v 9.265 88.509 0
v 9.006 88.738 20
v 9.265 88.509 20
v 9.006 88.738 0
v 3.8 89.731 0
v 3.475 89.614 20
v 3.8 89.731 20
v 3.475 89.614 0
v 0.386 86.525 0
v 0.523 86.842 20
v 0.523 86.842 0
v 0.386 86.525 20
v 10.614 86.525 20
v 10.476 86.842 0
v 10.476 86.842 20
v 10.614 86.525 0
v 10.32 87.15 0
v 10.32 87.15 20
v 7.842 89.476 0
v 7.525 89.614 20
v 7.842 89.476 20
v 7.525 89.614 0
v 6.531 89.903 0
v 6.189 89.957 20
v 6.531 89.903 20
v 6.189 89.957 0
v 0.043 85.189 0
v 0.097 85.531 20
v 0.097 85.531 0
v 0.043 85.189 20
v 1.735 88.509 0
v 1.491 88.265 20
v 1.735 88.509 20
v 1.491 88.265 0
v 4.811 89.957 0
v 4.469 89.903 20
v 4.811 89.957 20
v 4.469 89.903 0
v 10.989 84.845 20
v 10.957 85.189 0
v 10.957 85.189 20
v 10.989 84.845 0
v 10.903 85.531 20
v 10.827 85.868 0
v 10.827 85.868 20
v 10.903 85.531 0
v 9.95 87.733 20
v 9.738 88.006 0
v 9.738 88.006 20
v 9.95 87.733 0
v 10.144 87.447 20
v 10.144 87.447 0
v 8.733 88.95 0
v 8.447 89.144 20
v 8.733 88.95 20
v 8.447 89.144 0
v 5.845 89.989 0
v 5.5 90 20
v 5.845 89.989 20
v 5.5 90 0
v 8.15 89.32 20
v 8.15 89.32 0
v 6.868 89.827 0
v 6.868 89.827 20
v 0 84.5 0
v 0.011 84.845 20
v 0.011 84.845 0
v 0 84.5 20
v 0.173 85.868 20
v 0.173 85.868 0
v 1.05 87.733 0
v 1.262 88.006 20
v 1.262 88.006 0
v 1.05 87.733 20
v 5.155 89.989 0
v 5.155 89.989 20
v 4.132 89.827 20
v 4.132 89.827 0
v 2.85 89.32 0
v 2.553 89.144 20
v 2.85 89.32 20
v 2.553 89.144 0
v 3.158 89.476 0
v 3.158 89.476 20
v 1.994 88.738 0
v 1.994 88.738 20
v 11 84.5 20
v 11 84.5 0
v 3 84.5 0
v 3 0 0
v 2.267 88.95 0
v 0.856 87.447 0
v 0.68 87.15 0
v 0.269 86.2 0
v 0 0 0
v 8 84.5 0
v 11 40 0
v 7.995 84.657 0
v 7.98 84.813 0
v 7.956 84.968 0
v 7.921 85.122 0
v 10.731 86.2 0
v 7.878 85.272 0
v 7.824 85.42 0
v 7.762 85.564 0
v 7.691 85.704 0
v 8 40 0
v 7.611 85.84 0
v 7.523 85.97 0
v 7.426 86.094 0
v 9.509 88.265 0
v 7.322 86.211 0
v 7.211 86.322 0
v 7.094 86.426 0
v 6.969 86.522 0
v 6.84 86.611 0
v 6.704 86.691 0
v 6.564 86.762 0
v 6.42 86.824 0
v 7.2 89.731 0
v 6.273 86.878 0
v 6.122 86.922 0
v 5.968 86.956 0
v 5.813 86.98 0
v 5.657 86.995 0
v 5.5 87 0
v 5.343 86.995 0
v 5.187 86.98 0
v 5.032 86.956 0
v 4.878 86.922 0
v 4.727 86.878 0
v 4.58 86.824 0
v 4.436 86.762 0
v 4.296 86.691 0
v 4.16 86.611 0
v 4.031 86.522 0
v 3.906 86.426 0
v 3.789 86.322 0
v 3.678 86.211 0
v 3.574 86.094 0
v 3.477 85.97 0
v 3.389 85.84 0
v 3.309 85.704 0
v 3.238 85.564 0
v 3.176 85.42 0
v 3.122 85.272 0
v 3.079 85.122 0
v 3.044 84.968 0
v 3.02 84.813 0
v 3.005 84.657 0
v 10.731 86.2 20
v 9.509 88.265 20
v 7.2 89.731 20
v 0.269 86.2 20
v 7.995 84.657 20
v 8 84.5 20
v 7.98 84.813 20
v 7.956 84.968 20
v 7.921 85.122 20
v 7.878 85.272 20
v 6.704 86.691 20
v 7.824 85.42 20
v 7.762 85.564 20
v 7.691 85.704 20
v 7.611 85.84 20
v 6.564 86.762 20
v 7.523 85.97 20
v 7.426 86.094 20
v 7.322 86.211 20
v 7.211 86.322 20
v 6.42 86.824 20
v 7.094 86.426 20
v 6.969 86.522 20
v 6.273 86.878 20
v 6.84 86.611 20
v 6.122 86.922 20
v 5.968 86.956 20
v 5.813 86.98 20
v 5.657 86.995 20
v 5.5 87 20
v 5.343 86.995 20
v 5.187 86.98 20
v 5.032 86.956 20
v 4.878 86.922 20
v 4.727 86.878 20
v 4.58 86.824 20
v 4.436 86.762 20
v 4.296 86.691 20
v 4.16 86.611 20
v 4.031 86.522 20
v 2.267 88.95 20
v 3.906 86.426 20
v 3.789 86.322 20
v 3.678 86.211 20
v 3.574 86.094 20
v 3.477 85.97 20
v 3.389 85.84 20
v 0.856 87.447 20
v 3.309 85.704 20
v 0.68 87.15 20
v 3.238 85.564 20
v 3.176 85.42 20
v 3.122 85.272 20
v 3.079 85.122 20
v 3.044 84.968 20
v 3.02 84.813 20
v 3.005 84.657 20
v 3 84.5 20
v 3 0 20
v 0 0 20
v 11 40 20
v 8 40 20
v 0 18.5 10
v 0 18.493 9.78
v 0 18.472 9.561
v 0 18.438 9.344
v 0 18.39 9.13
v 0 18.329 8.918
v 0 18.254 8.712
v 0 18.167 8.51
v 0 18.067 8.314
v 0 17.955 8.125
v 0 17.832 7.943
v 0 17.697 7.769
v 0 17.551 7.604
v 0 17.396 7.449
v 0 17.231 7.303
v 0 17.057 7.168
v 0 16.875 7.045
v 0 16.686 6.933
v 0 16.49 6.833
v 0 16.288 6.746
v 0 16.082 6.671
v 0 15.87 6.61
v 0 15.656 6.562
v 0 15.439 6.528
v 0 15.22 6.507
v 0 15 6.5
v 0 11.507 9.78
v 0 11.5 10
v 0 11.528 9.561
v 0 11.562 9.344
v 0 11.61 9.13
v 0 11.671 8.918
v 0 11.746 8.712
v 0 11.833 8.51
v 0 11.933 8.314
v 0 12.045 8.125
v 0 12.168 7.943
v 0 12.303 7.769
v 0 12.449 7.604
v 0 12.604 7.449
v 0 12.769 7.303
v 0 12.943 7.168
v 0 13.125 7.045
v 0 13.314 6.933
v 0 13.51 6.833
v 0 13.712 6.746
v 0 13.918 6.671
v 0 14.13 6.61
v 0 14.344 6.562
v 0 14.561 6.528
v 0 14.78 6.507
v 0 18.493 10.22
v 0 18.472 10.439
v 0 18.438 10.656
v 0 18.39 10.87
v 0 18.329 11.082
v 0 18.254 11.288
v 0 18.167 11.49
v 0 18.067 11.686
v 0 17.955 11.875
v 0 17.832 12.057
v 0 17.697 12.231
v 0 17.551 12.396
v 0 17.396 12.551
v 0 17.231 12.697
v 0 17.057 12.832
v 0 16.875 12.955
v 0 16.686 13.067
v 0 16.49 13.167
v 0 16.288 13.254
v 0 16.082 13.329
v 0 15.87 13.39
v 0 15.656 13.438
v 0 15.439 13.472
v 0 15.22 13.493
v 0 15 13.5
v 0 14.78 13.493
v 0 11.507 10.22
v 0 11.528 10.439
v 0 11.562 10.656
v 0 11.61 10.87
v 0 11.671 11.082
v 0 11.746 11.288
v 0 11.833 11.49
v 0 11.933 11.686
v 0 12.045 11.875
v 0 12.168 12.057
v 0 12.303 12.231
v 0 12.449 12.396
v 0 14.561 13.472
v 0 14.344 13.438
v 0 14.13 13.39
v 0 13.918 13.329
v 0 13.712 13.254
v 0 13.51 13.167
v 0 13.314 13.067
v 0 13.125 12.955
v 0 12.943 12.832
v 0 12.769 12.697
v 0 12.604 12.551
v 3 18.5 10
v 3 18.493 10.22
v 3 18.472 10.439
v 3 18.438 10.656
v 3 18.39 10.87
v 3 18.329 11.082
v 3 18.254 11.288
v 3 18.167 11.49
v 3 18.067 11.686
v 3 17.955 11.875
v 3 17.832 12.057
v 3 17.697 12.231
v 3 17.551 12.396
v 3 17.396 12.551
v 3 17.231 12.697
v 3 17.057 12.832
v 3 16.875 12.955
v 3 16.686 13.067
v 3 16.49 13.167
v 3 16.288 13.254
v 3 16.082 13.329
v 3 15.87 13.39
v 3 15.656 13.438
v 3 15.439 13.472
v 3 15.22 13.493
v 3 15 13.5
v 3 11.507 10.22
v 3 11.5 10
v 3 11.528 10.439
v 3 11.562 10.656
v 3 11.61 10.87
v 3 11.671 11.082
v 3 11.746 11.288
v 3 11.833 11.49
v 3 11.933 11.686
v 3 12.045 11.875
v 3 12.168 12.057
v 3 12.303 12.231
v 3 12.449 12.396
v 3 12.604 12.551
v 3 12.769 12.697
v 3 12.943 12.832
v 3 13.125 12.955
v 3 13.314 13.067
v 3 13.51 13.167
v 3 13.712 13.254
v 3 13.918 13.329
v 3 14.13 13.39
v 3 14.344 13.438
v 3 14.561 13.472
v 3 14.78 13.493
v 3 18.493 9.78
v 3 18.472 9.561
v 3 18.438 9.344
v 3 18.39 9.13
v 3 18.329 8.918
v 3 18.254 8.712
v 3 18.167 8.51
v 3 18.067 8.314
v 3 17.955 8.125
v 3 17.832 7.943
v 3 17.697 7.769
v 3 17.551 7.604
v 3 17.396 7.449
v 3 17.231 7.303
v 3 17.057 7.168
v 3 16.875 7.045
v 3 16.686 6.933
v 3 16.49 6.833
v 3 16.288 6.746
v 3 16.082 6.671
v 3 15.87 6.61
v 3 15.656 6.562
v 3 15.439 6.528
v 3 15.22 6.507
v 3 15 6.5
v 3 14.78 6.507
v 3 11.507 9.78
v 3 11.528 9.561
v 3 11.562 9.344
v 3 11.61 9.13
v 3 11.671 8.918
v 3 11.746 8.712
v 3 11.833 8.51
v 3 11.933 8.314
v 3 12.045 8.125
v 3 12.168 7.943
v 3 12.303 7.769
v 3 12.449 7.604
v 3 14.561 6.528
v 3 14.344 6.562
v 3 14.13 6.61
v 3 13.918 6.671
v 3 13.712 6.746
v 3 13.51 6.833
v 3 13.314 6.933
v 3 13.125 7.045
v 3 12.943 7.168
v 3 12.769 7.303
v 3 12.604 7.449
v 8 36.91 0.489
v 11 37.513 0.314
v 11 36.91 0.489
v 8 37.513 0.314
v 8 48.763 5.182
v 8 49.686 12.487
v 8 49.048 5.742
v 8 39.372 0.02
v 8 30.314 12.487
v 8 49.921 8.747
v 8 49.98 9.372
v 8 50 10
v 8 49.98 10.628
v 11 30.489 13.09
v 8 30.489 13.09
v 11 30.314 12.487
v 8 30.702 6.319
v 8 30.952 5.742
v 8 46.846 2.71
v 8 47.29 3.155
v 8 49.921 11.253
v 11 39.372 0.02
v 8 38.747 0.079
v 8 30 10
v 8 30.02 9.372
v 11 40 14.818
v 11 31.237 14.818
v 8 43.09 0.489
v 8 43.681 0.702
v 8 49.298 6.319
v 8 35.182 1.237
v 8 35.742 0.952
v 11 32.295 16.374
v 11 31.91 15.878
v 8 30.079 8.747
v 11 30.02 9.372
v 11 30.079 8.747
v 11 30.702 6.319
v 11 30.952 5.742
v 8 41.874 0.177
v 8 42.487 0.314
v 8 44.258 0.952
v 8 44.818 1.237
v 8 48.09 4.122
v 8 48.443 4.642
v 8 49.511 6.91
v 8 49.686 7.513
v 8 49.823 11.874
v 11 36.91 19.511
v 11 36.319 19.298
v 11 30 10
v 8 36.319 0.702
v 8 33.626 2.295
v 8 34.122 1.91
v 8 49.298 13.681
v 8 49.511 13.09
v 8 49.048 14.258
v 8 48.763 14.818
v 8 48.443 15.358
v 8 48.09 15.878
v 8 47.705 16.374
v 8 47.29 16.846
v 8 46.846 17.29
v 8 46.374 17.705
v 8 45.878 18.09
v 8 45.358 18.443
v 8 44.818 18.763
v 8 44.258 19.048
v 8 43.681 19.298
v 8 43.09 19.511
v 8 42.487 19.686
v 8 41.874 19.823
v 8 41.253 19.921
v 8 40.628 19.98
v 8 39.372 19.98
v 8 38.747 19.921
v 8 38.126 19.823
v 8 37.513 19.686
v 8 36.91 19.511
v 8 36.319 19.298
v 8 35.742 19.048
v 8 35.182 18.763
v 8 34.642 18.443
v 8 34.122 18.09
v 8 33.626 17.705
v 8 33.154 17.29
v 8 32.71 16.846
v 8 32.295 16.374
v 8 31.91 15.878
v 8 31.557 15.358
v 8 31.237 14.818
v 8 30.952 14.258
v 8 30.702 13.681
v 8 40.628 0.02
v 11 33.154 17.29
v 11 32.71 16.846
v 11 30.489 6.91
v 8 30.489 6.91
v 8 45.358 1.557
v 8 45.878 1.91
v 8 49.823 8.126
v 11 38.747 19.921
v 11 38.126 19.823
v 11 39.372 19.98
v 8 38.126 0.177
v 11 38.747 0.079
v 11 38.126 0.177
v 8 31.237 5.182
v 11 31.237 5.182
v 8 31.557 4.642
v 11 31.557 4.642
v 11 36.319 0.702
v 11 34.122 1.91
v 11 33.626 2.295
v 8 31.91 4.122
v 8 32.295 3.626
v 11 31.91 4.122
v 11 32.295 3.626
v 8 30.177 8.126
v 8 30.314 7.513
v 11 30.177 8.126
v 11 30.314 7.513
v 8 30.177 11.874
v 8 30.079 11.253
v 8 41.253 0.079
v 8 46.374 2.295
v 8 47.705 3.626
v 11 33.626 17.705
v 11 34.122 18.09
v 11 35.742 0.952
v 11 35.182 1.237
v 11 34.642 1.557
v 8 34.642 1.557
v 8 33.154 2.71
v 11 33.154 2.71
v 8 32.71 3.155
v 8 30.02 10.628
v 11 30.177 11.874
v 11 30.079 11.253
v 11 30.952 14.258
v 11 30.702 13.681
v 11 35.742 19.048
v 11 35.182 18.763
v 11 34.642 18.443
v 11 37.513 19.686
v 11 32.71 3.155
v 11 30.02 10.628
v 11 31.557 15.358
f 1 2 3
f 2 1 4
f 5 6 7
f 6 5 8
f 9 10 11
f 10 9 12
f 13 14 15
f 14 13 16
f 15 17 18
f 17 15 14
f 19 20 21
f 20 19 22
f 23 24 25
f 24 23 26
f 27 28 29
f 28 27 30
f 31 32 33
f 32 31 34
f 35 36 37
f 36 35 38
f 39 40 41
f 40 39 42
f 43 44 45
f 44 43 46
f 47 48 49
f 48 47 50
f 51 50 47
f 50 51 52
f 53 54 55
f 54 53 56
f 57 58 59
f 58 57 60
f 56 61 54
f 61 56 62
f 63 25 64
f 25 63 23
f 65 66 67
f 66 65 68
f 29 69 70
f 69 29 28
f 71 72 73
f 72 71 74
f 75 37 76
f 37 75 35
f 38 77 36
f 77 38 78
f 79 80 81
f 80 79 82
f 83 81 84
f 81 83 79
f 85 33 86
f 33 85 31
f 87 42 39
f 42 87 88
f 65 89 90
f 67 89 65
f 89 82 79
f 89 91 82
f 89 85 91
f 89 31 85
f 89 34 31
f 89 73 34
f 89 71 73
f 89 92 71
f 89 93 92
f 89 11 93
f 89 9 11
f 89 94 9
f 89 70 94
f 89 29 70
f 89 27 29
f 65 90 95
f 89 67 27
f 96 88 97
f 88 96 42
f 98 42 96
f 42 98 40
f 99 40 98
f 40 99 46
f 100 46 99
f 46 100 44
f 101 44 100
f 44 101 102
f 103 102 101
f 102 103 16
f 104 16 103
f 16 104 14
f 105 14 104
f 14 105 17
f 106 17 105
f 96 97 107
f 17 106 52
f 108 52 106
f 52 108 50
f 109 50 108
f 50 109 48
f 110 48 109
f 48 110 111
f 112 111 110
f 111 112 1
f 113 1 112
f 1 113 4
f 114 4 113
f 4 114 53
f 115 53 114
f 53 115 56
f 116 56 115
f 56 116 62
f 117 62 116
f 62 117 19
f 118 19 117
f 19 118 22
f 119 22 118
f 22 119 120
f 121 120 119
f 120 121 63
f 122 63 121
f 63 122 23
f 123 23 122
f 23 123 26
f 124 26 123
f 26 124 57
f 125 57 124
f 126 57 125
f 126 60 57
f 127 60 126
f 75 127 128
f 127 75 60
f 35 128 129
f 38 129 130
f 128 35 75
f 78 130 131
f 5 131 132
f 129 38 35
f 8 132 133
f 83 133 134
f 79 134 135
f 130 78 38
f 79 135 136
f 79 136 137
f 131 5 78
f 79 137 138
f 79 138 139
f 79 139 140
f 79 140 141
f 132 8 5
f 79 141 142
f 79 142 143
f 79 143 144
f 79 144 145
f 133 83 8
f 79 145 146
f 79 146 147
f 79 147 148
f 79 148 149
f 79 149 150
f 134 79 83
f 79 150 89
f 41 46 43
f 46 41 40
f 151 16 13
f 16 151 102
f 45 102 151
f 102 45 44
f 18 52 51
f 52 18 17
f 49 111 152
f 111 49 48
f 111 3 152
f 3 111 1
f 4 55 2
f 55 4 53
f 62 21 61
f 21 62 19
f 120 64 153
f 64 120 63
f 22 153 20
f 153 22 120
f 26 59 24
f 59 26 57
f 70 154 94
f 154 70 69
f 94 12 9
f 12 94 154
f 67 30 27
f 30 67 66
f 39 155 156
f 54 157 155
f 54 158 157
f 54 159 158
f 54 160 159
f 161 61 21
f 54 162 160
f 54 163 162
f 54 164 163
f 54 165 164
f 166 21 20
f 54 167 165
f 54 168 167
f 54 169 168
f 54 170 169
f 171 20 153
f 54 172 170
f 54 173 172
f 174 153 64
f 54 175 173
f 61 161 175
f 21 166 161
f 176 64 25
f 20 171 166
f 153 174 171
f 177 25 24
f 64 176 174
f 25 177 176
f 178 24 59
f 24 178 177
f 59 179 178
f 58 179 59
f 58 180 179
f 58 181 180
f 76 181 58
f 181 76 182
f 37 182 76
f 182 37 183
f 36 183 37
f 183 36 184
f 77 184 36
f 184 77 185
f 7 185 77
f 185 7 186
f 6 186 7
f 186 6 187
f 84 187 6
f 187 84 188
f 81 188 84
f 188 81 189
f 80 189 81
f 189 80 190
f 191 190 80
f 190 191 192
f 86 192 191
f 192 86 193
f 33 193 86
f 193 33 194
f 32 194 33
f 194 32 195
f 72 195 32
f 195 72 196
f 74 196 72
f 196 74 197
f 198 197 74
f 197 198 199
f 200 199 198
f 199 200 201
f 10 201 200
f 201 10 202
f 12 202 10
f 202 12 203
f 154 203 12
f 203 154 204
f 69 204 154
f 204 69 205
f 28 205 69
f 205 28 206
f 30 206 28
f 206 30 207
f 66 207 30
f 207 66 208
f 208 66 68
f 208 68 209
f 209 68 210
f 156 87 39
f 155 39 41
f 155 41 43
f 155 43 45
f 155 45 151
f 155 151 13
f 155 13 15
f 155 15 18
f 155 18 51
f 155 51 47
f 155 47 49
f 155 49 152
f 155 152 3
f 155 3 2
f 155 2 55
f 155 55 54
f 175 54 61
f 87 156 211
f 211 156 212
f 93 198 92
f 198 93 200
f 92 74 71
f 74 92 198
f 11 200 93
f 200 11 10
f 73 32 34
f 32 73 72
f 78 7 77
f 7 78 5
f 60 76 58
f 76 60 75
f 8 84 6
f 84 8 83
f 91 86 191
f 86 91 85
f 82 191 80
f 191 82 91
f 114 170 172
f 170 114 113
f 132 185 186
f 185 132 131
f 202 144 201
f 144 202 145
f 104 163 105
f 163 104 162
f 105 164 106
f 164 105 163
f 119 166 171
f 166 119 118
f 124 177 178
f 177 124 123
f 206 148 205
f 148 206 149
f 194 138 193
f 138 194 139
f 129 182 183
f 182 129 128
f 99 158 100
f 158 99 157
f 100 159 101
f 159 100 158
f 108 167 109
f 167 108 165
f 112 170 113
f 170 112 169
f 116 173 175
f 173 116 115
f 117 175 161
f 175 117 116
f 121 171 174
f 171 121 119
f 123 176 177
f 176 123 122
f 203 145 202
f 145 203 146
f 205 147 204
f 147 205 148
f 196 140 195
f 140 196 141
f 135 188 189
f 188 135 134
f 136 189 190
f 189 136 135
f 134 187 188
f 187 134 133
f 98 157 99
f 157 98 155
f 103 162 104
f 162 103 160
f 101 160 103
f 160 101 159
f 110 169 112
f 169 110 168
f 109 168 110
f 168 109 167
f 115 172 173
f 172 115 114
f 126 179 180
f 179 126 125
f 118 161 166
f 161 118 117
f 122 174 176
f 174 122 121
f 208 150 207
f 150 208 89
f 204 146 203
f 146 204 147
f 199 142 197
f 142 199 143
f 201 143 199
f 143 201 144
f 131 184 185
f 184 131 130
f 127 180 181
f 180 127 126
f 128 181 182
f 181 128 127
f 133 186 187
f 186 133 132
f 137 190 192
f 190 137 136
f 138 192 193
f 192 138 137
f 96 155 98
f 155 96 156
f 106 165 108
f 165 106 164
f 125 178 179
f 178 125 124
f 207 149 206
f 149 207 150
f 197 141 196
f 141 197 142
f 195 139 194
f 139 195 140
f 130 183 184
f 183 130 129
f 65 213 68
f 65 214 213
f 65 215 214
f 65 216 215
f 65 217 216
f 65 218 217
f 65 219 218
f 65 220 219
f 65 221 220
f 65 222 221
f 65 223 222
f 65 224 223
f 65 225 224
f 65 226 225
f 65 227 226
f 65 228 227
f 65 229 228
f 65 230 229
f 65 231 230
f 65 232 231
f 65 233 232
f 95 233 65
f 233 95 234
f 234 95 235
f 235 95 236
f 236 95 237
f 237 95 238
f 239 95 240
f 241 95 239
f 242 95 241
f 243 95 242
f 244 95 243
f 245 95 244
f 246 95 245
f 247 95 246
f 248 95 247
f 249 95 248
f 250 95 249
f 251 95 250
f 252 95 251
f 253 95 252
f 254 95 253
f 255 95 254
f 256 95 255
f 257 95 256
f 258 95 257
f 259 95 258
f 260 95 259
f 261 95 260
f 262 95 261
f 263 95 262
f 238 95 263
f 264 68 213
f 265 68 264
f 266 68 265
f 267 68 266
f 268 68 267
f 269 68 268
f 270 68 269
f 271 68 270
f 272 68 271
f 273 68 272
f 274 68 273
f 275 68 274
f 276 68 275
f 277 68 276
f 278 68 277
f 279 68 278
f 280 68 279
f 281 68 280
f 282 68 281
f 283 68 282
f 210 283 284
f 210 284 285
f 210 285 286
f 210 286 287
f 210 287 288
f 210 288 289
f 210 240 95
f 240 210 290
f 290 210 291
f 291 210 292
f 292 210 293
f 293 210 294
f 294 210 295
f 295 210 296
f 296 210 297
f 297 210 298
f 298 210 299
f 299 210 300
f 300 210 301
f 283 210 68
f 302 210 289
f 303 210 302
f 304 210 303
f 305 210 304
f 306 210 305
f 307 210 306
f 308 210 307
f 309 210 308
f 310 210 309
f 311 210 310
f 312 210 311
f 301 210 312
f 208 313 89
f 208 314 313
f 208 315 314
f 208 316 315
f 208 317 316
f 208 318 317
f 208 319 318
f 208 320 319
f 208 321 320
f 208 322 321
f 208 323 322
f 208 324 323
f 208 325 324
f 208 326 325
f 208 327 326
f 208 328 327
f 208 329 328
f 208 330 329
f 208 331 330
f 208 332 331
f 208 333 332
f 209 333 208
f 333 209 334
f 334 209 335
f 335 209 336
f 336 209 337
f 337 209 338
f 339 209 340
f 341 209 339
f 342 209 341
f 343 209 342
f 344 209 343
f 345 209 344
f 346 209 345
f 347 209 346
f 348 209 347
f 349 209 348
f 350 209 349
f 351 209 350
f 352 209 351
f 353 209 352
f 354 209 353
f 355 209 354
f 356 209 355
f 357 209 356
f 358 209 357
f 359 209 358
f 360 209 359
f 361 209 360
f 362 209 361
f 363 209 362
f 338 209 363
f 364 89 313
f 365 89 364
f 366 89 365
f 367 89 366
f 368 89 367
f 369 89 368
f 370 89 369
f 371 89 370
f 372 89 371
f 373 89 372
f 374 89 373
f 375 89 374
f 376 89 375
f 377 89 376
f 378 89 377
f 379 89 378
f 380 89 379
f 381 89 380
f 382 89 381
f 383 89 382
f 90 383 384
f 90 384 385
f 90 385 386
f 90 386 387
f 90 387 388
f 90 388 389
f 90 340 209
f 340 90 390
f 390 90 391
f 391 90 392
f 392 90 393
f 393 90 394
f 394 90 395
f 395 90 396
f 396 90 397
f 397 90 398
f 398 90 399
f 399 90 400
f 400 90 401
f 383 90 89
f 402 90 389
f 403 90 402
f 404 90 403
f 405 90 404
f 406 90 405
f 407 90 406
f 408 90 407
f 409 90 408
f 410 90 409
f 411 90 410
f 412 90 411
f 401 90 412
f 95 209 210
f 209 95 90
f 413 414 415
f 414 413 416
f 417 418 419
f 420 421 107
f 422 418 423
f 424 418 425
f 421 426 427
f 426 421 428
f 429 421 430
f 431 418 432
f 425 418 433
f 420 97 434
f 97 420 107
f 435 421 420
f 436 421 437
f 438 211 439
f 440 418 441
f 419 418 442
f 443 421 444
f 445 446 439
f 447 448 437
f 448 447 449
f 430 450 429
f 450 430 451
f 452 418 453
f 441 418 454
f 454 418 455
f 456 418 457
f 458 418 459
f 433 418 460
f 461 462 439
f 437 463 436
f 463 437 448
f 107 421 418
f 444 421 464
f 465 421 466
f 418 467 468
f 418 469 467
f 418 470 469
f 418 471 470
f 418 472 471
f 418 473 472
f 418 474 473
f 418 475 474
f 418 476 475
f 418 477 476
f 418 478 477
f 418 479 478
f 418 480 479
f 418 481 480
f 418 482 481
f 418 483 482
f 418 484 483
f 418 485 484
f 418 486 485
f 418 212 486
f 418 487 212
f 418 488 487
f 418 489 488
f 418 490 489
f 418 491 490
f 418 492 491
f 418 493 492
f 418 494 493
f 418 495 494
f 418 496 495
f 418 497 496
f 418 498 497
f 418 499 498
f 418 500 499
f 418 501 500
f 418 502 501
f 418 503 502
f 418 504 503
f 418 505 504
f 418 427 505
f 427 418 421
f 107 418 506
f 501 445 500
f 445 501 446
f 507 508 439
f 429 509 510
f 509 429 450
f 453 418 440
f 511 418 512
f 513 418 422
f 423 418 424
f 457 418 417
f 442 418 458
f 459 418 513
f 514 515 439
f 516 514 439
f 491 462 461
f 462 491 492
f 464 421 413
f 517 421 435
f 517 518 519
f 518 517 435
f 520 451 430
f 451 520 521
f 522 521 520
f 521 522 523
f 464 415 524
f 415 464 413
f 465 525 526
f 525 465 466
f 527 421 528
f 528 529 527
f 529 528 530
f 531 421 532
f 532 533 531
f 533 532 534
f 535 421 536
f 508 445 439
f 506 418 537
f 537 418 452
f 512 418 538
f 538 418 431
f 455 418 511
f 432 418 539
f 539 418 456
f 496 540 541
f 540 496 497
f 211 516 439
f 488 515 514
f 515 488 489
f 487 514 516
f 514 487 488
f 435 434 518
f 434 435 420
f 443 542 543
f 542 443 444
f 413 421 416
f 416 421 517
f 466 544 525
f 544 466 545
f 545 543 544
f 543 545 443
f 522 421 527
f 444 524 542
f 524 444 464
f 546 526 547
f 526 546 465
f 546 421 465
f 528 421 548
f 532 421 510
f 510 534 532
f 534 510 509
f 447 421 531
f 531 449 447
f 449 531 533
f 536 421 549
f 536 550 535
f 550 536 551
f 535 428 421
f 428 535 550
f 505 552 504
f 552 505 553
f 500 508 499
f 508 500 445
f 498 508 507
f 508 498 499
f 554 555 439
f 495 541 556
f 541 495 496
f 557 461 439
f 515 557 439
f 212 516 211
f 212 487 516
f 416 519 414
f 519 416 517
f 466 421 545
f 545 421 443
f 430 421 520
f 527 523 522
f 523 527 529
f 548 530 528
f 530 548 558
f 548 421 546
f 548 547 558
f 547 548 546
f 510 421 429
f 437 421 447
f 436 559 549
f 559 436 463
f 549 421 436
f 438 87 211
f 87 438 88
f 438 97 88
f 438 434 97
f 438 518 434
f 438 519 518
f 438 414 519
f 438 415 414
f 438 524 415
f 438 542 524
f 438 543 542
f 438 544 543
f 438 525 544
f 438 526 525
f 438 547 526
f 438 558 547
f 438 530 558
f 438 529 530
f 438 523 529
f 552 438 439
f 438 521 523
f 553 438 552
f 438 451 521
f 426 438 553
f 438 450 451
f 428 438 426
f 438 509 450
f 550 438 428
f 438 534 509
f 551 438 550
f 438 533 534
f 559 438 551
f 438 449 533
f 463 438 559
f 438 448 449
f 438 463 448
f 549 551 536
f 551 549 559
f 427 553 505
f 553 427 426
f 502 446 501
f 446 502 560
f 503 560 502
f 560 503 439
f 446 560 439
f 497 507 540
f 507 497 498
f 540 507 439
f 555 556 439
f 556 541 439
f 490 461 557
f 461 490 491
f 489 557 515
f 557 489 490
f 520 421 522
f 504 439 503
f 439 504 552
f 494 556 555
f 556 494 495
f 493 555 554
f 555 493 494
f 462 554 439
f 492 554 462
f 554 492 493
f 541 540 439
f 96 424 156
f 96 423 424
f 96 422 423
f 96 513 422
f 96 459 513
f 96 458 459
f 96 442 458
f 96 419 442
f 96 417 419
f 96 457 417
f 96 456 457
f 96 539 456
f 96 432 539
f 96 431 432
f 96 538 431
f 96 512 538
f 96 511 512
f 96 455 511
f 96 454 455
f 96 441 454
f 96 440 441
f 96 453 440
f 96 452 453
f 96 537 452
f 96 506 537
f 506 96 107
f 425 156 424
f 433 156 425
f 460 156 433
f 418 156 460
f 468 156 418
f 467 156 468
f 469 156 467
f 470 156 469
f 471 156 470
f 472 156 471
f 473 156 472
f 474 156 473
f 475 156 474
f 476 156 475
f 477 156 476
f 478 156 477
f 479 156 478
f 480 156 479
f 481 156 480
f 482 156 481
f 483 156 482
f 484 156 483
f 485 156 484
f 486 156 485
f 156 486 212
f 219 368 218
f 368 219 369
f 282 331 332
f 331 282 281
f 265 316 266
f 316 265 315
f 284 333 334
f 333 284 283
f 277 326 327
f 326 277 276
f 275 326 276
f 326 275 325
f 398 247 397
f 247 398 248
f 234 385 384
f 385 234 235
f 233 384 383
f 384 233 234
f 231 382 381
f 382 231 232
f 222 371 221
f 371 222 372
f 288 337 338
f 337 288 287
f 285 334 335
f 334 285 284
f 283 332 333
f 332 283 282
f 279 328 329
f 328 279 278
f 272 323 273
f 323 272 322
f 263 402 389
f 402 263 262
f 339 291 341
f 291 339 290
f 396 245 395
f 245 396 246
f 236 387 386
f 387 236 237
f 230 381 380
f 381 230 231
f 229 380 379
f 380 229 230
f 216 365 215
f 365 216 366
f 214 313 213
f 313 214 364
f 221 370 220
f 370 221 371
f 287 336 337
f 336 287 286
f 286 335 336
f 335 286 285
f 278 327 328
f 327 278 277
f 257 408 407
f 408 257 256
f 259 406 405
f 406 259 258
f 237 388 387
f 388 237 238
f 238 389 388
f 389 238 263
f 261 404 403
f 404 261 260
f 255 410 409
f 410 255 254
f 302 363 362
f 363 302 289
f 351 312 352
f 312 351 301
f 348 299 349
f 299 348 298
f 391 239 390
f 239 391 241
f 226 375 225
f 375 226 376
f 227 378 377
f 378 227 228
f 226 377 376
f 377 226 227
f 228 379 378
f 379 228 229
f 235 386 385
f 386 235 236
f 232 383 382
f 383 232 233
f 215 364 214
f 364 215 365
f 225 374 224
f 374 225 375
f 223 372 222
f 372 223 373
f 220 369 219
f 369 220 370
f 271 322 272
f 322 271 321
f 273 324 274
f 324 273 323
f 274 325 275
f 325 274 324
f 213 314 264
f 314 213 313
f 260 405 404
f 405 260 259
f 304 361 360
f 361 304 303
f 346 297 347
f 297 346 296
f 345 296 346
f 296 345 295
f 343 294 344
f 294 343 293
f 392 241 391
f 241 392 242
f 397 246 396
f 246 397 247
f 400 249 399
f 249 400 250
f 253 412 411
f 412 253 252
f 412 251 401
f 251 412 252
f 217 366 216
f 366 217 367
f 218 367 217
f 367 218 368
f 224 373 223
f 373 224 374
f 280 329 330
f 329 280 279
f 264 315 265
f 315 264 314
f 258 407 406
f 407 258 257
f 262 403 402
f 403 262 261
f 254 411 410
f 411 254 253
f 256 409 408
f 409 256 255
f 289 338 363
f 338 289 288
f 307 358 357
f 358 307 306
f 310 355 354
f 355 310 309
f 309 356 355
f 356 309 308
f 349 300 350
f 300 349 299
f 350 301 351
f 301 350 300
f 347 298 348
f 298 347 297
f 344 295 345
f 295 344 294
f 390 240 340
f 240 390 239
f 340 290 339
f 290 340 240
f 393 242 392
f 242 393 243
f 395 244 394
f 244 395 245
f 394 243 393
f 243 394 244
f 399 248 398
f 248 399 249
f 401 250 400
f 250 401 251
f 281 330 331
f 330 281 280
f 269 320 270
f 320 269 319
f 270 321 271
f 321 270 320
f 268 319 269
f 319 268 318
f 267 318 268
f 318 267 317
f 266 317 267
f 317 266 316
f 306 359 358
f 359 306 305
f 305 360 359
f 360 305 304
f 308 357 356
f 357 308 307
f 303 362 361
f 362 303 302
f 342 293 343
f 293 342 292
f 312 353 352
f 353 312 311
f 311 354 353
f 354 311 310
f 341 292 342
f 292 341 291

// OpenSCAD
$fn=100;

up_height = 90;
wall = 3;
middle = 5;

out_x = middle+2*wall;
width = 20;

difference(){
	union(){
		translate([middle/2+wall,up_height-out_x/2,0]) difference(){
			cylinder(d=out_x,h=width);	
			translate([0,0,-1]) cylinder(d=middle,h=width+2);
			translate([-20,-40,-1]) cube(40);
		}

		cube(size=[wall,up_height-out_x/2,width]);

		translate([wall+middle, 40,width/2]) rotate([0,90,0]) cylinder(d=width,h=wall);

		translate([wall+middle, 40, 0]) cube(size=[wall,up_height-40-out_x/2,width]);
	}
	translate([-1,15,width/2]) rotate([0,90,0]) cylinder(d=7,h=wall+2);
}
